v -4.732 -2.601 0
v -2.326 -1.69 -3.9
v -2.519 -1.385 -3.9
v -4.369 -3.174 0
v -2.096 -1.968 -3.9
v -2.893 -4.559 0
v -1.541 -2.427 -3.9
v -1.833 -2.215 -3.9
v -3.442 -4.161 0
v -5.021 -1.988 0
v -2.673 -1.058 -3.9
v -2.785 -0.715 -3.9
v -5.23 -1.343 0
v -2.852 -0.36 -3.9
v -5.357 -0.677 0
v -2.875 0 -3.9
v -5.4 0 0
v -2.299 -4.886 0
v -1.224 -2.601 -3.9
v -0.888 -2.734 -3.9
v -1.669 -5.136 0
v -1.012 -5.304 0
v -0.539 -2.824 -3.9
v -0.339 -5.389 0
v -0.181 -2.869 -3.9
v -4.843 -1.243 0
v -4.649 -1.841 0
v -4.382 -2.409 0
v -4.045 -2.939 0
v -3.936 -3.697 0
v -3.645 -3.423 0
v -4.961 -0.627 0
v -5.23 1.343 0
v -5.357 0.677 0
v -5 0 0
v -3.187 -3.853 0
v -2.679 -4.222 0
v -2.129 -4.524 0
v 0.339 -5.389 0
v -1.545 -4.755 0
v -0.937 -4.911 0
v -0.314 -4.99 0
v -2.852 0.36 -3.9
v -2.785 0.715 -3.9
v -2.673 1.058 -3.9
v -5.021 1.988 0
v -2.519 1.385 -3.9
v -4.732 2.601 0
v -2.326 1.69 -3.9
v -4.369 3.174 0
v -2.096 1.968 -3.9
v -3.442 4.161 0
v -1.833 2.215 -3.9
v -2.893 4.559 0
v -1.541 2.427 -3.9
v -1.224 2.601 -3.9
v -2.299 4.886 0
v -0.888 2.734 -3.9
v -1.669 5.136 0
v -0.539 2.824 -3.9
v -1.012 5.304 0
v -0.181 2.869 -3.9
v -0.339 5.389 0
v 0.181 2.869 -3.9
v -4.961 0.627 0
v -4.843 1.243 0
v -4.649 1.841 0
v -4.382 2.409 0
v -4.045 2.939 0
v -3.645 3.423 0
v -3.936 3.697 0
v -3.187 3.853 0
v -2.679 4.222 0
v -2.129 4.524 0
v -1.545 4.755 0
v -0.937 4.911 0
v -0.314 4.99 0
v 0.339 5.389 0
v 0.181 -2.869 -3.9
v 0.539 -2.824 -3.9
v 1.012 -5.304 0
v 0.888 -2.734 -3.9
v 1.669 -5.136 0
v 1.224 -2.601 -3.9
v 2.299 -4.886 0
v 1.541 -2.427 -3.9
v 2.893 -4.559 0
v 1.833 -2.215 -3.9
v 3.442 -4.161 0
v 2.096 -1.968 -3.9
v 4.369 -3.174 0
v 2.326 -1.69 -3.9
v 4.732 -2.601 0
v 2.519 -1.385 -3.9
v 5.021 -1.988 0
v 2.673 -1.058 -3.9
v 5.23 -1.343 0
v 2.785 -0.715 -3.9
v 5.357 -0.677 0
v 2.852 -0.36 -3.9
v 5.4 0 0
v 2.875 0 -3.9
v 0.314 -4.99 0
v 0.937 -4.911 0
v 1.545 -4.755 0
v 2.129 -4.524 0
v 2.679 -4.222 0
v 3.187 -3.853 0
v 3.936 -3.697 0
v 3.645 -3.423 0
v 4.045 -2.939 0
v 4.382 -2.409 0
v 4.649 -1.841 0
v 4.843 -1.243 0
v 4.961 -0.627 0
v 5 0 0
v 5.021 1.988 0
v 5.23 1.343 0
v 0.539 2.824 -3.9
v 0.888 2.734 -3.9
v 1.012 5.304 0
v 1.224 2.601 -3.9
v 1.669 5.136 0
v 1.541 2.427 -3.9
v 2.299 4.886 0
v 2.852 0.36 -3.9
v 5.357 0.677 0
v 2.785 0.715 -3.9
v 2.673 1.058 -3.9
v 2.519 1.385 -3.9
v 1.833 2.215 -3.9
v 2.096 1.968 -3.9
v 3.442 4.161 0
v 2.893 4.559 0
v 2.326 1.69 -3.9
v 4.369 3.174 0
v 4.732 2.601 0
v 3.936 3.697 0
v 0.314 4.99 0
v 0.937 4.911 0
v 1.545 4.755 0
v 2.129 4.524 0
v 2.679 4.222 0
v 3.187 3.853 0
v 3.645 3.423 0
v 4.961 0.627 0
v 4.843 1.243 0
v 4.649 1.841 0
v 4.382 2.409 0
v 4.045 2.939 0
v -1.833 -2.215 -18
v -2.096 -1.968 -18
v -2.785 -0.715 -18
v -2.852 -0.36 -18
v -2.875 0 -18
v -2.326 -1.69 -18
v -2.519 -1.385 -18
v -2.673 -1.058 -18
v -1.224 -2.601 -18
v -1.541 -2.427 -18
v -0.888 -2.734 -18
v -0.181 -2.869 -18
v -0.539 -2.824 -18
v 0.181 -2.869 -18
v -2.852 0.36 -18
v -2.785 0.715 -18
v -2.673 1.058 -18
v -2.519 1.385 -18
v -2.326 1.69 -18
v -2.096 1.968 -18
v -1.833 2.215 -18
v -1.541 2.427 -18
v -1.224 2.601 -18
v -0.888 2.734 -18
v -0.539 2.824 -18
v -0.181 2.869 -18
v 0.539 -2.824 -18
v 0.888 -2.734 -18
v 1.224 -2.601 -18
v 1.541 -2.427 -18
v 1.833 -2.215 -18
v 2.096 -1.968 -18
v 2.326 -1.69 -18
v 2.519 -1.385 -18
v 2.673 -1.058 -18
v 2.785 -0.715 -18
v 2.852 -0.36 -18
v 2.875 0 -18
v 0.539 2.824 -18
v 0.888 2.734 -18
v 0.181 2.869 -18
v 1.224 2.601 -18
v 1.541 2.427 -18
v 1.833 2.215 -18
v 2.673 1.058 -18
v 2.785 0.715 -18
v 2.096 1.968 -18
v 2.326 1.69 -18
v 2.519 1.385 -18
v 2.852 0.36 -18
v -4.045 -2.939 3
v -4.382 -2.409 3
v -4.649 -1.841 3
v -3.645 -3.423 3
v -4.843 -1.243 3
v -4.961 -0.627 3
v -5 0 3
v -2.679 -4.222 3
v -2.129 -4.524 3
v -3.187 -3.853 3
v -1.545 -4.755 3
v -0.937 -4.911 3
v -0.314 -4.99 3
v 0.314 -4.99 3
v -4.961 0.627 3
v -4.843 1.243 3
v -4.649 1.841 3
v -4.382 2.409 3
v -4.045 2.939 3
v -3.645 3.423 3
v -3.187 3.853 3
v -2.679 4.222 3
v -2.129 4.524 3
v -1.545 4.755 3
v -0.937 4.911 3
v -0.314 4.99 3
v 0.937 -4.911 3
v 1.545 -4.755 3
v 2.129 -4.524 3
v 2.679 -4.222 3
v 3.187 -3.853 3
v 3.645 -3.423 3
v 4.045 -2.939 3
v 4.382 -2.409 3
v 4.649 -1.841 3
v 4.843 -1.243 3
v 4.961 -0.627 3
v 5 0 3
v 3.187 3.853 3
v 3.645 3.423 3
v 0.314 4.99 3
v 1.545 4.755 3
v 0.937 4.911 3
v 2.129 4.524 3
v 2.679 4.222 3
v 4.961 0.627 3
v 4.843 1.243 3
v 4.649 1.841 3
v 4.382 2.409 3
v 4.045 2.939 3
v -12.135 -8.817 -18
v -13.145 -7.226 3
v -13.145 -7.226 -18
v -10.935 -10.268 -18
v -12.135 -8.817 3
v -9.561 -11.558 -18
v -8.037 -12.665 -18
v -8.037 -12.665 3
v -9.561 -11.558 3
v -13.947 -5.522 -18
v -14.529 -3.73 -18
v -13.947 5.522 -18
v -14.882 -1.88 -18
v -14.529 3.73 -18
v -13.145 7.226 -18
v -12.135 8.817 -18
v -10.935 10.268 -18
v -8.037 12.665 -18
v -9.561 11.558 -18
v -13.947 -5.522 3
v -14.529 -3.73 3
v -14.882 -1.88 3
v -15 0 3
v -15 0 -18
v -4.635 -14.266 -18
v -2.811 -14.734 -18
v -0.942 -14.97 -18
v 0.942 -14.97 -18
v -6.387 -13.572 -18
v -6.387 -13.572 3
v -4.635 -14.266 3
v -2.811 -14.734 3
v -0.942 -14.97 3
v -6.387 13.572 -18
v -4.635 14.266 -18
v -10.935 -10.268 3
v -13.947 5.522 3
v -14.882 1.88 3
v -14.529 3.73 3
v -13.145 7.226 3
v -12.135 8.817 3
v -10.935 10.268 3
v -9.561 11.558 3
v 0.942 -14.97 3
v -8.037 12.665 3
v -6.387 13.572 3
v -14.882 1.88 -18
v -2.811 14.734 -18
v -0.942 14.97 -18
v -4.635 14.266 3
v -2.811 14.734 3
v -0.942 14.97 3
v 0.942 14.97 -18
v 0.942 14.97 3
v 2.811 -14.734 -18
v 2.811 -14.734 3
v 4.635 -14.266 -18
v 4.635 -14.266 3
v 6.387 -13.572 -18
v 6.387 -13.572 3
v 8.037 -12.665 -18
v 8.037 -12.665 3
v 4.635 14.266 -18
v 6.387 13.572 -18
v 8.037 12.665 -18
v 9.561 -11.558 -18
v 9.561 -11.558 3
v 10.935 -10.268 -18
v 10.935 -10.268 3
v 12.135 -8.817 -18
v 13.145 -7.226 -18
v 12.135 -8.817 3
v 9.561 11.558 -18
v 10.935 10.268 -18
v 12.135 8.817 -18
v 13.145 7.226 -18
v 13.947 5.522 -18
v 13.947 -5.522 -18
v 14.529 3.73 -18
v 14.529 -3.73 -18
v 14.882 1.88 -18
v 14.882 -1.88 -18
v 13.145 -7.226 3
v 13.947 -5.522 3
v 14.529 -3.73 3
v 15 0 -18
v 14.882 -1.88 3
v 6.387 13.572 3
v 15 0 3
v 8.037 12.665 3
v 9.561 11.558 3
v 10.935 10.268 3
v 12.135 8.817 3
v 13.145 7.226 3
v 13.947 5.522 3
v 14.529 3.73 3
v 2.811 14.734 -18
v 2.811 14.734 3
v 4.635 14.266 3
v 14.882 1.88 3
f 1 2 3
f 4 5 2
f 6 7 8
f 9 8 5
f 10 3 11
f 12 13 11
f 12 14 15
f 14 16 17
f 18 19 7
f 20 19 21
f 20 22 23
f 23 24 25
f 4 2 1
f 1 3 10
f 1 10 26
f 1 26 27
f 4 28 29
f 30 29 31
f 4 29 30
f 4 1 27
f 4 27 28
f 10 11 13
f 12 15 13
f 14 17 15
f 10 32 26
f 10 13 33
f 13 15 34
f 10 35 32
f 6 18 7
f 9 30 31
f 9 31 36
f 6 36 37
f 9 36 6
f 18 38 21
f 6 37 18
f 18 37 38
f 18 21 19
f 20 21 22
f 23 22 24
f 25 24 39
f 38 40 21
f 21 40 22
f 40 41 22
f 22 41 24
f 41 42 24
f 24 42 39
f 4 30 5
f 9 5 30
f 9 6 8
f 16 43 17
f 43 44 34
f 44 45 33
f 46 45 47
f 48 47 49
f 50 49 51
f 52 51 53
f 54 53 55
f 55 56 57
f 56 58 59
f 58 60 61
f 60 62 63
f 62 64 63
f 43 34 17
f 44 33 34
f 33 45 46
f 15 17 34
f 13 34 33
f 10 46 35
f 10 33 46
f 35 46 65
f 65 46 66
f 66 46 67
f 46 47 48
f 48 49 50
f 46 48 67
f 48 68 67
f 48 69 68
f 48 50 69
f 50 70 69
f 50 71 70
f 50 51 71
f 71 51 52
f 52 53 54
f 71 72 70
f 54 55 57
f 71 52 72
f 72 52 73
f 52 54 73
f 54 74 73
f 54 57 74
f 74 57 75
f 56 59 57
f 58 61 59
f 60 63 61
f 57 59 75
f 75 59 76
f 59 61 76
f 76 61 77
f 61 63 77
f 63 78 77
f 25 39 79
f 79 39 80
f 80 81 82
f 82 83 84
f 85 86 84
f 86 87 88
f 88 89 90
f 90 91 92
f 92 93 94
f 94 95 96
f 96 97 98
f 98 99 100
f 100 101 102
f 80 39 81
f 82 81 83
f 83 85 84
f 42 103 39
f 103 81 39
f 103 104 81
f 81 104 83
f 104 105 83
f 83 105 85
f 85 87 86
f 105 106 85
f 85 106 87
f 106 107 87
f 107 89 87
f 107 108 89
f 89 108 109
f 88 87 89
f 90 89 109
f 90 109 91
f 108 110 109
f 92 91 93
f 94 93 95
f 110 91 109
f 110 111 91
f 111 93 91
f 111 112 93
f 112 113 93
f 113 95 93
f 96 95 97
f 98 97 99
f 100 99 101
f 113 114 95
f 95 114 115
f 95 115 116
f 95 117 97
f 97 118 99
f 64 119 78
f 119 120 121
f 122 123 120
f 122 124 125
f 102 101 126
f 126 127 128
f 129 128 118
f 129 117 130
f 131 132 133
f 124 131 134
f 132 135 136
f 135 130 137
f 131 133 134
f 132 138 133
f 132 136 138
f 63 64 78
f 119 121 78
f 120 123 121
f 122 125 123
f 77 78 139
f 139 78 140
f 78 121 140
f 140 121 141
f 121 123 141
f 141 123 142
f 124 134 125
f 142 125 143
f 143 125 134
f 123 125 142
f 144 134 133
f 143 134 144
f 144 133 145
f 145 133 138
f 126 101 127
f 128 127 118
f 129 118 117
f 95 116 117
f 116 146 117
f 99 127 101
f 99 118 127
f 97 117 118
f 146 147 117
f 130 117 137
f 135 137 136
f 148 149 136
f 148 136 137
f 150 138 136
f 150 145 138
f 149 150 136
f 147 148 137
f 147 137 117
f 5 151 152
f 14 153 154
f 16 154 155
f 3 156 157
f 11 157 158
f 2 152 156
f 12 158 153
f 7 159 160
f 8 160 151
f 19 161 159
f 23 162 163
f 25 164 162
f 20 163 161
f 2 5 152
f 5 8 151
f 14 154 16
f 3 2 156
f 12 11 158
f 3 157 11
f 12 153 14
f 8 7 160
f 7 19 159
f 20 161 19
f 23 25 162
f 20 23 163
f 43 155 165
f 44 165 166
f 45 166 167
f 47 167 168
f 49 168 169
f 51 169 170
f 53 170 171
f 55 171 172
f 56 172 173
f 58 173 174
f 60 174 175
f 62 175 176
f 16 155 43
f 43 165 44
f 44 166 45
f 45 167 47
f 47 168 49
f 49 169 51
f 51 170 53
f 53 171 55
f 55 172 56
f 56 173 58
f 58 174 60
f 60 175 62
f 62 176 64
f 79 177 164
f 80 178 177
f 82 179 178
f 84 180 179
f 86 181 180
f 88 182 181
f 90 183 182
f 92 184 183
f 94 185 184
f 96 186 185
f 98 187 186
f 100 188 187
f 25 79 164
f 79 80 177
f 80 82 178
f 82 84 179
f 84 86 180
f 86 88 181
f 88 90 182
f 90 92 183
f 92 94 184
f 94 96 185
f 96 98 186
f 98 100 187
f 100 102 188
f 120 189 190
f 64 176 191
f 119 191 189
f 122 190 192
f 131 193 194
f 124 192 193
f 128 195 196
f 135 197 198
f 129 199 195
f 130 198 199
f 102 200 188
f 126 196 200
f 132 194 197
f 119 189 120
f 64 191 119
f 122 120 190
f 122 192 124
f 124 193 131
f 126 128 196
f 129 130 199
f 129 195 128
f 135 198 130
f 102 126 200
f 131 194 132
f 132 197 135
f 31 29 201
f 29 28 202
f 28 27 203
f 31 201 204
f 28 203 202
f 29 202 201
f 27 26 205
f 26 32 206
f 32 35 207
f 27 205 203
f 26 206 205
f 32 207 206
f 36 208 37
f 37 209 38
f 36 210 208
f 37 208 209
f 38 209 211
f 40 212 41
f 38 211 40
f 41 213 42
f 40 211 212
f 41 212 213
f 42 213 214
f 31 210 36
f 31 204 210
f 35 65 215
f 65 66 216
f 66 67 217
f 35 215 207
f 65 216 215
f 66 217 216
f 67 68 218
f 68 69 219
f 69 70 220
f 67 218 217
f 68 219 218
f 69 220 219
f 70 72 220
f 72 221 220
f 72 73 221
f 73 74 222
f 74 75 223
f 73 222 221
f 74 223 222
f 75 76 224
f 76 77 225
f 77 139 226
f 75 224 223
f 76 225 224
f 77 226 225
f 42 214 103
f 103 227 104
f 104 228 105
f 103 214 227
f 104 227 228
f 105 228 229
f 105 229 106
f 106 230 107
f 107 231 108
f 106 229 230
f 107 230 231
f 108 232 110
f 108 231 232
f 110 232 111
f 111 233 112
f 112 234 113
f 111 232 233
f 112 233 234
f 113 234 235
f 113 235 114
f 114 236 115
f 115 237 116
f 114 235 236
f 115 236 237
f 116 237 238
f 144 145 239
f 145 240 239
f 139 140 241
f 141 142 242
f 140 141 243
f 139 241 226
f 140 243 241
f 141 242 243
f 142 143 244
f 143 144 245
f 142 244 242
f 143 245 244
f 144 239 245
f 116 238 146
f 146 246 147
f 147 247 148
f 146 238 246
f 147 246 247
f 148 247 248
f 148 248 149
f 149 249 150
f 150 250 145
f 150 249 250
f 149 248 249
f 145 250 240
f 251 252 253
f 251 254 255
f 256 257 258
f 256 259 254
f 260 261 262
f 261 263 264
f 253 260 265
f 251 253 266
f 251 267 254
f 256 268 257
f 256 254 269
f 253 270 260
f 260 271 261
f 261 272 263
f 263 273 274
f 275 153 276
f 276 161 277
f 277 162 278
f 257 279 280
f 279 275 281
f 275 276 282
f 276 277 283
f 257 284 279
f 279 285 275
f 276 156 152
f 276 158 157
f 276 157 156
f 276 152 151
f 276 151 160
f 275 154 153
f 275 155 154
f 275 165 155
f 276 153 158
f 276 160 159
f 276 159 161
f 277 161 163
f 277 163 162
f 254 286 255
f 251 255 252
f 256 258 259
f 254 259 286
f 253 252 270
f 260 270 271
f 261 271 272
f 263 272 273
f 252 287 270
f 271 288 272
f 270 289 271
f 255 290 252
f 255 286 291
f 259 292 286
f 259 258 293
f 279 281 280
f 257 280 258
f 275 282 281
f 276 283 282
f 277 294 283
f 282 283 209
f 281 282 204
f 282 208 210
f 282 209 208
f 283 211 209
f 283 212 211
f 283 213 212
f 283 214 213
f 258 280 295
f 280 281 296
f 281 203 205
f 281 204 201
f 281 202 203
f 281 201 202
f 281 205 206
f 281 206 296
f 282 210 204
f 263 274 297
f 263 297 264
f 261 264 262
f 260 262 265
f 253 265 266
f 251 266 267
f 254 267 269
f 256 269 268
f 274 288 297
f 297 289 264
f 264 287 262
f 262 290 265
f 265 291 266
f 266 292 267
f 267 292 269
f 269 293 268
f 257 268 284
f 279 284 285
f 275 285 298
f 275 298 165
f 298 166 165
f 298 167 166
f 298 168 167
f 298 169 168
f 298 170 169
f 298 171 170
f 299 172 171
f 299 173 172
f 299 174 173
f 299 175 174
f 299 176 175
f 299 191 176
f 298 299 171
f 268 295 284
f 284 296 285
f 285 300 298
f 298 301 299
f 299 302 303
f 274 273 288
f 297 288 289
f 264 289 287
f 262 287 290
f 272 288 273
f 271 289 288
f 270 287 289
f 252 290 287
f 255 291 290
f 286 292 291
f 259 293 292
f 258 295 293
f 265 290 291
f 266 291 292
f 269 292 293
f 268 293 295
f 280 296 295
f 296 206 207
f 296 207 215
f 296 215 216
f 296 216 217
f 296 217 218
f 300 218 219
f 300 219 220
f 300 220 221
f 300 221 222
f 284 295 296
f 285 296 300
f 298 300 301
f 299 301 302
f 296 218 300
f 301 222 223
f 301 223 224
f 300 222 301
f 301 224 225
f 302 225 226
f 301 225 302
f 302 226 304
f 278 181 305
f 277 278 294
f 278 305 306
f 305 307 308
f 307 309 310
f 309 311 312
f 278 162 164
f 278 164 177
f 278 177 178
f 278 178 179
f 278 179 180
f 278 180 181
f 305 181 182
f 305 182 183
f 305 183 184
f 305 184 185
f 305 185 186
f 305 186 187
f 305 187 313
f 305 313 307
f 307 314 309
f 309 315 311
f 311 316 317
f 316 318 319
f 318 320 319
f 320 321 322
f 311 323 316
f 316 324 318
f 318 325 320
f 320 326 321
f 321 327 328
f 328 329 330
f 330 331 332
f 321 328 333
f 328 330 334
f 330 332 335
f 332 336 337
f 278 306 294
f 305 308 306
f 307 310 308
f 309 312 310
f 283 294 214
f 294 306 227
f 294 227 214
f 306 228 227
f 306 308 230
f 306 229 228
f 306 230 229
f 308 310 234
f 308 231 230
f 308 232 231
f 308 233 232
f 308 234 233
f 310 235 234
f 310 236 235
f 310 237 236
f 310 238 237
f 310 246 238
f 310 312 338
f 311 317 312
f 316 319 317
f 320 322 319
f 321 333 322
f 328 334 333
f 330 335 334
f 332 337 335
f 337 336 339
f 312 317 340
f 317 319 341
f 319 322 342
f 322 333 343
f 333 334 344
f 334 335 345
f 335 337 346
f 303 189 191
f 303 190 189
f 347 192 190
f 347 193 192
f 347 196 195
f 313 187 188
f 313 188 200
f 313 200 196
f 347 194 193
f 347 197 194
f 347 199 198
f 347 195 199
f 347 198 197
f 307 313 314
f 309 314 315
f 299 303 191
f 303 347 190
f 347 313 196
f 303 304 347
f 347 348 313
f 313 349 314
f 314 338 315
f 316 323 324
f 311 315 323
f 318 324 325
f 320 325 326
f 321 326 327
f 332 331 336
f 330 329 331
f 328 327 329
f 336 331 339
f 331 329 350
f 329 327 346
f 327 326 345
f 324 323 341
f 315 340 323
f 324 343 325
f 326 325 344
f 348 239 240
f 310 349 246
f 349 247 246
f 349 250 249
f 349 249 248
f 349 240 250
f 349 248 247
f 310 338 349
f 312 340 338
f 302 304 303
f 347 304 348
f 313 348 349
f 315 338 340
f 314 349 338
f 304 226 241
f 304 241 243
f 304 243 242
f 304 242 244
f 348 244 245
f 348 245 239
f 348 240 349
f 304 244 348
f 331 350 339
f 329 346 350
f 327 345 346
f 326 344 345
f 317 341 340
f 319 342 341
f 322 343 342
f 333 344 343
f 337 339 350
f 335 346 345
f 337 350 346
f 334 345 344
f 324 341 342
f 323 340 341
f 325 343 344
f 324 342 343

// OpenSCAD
$fn = 50;

difference() {
	union() {
		translate(v = [0, 0, -18.0]) {
			cylinder(h = 21, r = 15.0);
		}
	}
	union() {
		translate(v = [0, 0, 0]) {
			rotate(a = [0, 0, 0]) {
				difference() {
					union() {
						translate(v = [0, 0, -21.0]) {
							cylinder(h = 21, r = 2.6);
						}
						translate(v = [0, 0, -3.9]) {
							cylinder(h = 3.9, r1 = 2.875, r2 = 5.4);
						}
						translate(v = [0, 0, -21.0]) {
							cylinder(h = 21, r = 2.875);
						}
						translate(v = [0, 0, -21.0]) {
							cylinder(h = 21, r = 2.6);
						}
					}
					union();
				}
			}
		}
		#cylinder(h = 3, r = 5.0);
	}
}
